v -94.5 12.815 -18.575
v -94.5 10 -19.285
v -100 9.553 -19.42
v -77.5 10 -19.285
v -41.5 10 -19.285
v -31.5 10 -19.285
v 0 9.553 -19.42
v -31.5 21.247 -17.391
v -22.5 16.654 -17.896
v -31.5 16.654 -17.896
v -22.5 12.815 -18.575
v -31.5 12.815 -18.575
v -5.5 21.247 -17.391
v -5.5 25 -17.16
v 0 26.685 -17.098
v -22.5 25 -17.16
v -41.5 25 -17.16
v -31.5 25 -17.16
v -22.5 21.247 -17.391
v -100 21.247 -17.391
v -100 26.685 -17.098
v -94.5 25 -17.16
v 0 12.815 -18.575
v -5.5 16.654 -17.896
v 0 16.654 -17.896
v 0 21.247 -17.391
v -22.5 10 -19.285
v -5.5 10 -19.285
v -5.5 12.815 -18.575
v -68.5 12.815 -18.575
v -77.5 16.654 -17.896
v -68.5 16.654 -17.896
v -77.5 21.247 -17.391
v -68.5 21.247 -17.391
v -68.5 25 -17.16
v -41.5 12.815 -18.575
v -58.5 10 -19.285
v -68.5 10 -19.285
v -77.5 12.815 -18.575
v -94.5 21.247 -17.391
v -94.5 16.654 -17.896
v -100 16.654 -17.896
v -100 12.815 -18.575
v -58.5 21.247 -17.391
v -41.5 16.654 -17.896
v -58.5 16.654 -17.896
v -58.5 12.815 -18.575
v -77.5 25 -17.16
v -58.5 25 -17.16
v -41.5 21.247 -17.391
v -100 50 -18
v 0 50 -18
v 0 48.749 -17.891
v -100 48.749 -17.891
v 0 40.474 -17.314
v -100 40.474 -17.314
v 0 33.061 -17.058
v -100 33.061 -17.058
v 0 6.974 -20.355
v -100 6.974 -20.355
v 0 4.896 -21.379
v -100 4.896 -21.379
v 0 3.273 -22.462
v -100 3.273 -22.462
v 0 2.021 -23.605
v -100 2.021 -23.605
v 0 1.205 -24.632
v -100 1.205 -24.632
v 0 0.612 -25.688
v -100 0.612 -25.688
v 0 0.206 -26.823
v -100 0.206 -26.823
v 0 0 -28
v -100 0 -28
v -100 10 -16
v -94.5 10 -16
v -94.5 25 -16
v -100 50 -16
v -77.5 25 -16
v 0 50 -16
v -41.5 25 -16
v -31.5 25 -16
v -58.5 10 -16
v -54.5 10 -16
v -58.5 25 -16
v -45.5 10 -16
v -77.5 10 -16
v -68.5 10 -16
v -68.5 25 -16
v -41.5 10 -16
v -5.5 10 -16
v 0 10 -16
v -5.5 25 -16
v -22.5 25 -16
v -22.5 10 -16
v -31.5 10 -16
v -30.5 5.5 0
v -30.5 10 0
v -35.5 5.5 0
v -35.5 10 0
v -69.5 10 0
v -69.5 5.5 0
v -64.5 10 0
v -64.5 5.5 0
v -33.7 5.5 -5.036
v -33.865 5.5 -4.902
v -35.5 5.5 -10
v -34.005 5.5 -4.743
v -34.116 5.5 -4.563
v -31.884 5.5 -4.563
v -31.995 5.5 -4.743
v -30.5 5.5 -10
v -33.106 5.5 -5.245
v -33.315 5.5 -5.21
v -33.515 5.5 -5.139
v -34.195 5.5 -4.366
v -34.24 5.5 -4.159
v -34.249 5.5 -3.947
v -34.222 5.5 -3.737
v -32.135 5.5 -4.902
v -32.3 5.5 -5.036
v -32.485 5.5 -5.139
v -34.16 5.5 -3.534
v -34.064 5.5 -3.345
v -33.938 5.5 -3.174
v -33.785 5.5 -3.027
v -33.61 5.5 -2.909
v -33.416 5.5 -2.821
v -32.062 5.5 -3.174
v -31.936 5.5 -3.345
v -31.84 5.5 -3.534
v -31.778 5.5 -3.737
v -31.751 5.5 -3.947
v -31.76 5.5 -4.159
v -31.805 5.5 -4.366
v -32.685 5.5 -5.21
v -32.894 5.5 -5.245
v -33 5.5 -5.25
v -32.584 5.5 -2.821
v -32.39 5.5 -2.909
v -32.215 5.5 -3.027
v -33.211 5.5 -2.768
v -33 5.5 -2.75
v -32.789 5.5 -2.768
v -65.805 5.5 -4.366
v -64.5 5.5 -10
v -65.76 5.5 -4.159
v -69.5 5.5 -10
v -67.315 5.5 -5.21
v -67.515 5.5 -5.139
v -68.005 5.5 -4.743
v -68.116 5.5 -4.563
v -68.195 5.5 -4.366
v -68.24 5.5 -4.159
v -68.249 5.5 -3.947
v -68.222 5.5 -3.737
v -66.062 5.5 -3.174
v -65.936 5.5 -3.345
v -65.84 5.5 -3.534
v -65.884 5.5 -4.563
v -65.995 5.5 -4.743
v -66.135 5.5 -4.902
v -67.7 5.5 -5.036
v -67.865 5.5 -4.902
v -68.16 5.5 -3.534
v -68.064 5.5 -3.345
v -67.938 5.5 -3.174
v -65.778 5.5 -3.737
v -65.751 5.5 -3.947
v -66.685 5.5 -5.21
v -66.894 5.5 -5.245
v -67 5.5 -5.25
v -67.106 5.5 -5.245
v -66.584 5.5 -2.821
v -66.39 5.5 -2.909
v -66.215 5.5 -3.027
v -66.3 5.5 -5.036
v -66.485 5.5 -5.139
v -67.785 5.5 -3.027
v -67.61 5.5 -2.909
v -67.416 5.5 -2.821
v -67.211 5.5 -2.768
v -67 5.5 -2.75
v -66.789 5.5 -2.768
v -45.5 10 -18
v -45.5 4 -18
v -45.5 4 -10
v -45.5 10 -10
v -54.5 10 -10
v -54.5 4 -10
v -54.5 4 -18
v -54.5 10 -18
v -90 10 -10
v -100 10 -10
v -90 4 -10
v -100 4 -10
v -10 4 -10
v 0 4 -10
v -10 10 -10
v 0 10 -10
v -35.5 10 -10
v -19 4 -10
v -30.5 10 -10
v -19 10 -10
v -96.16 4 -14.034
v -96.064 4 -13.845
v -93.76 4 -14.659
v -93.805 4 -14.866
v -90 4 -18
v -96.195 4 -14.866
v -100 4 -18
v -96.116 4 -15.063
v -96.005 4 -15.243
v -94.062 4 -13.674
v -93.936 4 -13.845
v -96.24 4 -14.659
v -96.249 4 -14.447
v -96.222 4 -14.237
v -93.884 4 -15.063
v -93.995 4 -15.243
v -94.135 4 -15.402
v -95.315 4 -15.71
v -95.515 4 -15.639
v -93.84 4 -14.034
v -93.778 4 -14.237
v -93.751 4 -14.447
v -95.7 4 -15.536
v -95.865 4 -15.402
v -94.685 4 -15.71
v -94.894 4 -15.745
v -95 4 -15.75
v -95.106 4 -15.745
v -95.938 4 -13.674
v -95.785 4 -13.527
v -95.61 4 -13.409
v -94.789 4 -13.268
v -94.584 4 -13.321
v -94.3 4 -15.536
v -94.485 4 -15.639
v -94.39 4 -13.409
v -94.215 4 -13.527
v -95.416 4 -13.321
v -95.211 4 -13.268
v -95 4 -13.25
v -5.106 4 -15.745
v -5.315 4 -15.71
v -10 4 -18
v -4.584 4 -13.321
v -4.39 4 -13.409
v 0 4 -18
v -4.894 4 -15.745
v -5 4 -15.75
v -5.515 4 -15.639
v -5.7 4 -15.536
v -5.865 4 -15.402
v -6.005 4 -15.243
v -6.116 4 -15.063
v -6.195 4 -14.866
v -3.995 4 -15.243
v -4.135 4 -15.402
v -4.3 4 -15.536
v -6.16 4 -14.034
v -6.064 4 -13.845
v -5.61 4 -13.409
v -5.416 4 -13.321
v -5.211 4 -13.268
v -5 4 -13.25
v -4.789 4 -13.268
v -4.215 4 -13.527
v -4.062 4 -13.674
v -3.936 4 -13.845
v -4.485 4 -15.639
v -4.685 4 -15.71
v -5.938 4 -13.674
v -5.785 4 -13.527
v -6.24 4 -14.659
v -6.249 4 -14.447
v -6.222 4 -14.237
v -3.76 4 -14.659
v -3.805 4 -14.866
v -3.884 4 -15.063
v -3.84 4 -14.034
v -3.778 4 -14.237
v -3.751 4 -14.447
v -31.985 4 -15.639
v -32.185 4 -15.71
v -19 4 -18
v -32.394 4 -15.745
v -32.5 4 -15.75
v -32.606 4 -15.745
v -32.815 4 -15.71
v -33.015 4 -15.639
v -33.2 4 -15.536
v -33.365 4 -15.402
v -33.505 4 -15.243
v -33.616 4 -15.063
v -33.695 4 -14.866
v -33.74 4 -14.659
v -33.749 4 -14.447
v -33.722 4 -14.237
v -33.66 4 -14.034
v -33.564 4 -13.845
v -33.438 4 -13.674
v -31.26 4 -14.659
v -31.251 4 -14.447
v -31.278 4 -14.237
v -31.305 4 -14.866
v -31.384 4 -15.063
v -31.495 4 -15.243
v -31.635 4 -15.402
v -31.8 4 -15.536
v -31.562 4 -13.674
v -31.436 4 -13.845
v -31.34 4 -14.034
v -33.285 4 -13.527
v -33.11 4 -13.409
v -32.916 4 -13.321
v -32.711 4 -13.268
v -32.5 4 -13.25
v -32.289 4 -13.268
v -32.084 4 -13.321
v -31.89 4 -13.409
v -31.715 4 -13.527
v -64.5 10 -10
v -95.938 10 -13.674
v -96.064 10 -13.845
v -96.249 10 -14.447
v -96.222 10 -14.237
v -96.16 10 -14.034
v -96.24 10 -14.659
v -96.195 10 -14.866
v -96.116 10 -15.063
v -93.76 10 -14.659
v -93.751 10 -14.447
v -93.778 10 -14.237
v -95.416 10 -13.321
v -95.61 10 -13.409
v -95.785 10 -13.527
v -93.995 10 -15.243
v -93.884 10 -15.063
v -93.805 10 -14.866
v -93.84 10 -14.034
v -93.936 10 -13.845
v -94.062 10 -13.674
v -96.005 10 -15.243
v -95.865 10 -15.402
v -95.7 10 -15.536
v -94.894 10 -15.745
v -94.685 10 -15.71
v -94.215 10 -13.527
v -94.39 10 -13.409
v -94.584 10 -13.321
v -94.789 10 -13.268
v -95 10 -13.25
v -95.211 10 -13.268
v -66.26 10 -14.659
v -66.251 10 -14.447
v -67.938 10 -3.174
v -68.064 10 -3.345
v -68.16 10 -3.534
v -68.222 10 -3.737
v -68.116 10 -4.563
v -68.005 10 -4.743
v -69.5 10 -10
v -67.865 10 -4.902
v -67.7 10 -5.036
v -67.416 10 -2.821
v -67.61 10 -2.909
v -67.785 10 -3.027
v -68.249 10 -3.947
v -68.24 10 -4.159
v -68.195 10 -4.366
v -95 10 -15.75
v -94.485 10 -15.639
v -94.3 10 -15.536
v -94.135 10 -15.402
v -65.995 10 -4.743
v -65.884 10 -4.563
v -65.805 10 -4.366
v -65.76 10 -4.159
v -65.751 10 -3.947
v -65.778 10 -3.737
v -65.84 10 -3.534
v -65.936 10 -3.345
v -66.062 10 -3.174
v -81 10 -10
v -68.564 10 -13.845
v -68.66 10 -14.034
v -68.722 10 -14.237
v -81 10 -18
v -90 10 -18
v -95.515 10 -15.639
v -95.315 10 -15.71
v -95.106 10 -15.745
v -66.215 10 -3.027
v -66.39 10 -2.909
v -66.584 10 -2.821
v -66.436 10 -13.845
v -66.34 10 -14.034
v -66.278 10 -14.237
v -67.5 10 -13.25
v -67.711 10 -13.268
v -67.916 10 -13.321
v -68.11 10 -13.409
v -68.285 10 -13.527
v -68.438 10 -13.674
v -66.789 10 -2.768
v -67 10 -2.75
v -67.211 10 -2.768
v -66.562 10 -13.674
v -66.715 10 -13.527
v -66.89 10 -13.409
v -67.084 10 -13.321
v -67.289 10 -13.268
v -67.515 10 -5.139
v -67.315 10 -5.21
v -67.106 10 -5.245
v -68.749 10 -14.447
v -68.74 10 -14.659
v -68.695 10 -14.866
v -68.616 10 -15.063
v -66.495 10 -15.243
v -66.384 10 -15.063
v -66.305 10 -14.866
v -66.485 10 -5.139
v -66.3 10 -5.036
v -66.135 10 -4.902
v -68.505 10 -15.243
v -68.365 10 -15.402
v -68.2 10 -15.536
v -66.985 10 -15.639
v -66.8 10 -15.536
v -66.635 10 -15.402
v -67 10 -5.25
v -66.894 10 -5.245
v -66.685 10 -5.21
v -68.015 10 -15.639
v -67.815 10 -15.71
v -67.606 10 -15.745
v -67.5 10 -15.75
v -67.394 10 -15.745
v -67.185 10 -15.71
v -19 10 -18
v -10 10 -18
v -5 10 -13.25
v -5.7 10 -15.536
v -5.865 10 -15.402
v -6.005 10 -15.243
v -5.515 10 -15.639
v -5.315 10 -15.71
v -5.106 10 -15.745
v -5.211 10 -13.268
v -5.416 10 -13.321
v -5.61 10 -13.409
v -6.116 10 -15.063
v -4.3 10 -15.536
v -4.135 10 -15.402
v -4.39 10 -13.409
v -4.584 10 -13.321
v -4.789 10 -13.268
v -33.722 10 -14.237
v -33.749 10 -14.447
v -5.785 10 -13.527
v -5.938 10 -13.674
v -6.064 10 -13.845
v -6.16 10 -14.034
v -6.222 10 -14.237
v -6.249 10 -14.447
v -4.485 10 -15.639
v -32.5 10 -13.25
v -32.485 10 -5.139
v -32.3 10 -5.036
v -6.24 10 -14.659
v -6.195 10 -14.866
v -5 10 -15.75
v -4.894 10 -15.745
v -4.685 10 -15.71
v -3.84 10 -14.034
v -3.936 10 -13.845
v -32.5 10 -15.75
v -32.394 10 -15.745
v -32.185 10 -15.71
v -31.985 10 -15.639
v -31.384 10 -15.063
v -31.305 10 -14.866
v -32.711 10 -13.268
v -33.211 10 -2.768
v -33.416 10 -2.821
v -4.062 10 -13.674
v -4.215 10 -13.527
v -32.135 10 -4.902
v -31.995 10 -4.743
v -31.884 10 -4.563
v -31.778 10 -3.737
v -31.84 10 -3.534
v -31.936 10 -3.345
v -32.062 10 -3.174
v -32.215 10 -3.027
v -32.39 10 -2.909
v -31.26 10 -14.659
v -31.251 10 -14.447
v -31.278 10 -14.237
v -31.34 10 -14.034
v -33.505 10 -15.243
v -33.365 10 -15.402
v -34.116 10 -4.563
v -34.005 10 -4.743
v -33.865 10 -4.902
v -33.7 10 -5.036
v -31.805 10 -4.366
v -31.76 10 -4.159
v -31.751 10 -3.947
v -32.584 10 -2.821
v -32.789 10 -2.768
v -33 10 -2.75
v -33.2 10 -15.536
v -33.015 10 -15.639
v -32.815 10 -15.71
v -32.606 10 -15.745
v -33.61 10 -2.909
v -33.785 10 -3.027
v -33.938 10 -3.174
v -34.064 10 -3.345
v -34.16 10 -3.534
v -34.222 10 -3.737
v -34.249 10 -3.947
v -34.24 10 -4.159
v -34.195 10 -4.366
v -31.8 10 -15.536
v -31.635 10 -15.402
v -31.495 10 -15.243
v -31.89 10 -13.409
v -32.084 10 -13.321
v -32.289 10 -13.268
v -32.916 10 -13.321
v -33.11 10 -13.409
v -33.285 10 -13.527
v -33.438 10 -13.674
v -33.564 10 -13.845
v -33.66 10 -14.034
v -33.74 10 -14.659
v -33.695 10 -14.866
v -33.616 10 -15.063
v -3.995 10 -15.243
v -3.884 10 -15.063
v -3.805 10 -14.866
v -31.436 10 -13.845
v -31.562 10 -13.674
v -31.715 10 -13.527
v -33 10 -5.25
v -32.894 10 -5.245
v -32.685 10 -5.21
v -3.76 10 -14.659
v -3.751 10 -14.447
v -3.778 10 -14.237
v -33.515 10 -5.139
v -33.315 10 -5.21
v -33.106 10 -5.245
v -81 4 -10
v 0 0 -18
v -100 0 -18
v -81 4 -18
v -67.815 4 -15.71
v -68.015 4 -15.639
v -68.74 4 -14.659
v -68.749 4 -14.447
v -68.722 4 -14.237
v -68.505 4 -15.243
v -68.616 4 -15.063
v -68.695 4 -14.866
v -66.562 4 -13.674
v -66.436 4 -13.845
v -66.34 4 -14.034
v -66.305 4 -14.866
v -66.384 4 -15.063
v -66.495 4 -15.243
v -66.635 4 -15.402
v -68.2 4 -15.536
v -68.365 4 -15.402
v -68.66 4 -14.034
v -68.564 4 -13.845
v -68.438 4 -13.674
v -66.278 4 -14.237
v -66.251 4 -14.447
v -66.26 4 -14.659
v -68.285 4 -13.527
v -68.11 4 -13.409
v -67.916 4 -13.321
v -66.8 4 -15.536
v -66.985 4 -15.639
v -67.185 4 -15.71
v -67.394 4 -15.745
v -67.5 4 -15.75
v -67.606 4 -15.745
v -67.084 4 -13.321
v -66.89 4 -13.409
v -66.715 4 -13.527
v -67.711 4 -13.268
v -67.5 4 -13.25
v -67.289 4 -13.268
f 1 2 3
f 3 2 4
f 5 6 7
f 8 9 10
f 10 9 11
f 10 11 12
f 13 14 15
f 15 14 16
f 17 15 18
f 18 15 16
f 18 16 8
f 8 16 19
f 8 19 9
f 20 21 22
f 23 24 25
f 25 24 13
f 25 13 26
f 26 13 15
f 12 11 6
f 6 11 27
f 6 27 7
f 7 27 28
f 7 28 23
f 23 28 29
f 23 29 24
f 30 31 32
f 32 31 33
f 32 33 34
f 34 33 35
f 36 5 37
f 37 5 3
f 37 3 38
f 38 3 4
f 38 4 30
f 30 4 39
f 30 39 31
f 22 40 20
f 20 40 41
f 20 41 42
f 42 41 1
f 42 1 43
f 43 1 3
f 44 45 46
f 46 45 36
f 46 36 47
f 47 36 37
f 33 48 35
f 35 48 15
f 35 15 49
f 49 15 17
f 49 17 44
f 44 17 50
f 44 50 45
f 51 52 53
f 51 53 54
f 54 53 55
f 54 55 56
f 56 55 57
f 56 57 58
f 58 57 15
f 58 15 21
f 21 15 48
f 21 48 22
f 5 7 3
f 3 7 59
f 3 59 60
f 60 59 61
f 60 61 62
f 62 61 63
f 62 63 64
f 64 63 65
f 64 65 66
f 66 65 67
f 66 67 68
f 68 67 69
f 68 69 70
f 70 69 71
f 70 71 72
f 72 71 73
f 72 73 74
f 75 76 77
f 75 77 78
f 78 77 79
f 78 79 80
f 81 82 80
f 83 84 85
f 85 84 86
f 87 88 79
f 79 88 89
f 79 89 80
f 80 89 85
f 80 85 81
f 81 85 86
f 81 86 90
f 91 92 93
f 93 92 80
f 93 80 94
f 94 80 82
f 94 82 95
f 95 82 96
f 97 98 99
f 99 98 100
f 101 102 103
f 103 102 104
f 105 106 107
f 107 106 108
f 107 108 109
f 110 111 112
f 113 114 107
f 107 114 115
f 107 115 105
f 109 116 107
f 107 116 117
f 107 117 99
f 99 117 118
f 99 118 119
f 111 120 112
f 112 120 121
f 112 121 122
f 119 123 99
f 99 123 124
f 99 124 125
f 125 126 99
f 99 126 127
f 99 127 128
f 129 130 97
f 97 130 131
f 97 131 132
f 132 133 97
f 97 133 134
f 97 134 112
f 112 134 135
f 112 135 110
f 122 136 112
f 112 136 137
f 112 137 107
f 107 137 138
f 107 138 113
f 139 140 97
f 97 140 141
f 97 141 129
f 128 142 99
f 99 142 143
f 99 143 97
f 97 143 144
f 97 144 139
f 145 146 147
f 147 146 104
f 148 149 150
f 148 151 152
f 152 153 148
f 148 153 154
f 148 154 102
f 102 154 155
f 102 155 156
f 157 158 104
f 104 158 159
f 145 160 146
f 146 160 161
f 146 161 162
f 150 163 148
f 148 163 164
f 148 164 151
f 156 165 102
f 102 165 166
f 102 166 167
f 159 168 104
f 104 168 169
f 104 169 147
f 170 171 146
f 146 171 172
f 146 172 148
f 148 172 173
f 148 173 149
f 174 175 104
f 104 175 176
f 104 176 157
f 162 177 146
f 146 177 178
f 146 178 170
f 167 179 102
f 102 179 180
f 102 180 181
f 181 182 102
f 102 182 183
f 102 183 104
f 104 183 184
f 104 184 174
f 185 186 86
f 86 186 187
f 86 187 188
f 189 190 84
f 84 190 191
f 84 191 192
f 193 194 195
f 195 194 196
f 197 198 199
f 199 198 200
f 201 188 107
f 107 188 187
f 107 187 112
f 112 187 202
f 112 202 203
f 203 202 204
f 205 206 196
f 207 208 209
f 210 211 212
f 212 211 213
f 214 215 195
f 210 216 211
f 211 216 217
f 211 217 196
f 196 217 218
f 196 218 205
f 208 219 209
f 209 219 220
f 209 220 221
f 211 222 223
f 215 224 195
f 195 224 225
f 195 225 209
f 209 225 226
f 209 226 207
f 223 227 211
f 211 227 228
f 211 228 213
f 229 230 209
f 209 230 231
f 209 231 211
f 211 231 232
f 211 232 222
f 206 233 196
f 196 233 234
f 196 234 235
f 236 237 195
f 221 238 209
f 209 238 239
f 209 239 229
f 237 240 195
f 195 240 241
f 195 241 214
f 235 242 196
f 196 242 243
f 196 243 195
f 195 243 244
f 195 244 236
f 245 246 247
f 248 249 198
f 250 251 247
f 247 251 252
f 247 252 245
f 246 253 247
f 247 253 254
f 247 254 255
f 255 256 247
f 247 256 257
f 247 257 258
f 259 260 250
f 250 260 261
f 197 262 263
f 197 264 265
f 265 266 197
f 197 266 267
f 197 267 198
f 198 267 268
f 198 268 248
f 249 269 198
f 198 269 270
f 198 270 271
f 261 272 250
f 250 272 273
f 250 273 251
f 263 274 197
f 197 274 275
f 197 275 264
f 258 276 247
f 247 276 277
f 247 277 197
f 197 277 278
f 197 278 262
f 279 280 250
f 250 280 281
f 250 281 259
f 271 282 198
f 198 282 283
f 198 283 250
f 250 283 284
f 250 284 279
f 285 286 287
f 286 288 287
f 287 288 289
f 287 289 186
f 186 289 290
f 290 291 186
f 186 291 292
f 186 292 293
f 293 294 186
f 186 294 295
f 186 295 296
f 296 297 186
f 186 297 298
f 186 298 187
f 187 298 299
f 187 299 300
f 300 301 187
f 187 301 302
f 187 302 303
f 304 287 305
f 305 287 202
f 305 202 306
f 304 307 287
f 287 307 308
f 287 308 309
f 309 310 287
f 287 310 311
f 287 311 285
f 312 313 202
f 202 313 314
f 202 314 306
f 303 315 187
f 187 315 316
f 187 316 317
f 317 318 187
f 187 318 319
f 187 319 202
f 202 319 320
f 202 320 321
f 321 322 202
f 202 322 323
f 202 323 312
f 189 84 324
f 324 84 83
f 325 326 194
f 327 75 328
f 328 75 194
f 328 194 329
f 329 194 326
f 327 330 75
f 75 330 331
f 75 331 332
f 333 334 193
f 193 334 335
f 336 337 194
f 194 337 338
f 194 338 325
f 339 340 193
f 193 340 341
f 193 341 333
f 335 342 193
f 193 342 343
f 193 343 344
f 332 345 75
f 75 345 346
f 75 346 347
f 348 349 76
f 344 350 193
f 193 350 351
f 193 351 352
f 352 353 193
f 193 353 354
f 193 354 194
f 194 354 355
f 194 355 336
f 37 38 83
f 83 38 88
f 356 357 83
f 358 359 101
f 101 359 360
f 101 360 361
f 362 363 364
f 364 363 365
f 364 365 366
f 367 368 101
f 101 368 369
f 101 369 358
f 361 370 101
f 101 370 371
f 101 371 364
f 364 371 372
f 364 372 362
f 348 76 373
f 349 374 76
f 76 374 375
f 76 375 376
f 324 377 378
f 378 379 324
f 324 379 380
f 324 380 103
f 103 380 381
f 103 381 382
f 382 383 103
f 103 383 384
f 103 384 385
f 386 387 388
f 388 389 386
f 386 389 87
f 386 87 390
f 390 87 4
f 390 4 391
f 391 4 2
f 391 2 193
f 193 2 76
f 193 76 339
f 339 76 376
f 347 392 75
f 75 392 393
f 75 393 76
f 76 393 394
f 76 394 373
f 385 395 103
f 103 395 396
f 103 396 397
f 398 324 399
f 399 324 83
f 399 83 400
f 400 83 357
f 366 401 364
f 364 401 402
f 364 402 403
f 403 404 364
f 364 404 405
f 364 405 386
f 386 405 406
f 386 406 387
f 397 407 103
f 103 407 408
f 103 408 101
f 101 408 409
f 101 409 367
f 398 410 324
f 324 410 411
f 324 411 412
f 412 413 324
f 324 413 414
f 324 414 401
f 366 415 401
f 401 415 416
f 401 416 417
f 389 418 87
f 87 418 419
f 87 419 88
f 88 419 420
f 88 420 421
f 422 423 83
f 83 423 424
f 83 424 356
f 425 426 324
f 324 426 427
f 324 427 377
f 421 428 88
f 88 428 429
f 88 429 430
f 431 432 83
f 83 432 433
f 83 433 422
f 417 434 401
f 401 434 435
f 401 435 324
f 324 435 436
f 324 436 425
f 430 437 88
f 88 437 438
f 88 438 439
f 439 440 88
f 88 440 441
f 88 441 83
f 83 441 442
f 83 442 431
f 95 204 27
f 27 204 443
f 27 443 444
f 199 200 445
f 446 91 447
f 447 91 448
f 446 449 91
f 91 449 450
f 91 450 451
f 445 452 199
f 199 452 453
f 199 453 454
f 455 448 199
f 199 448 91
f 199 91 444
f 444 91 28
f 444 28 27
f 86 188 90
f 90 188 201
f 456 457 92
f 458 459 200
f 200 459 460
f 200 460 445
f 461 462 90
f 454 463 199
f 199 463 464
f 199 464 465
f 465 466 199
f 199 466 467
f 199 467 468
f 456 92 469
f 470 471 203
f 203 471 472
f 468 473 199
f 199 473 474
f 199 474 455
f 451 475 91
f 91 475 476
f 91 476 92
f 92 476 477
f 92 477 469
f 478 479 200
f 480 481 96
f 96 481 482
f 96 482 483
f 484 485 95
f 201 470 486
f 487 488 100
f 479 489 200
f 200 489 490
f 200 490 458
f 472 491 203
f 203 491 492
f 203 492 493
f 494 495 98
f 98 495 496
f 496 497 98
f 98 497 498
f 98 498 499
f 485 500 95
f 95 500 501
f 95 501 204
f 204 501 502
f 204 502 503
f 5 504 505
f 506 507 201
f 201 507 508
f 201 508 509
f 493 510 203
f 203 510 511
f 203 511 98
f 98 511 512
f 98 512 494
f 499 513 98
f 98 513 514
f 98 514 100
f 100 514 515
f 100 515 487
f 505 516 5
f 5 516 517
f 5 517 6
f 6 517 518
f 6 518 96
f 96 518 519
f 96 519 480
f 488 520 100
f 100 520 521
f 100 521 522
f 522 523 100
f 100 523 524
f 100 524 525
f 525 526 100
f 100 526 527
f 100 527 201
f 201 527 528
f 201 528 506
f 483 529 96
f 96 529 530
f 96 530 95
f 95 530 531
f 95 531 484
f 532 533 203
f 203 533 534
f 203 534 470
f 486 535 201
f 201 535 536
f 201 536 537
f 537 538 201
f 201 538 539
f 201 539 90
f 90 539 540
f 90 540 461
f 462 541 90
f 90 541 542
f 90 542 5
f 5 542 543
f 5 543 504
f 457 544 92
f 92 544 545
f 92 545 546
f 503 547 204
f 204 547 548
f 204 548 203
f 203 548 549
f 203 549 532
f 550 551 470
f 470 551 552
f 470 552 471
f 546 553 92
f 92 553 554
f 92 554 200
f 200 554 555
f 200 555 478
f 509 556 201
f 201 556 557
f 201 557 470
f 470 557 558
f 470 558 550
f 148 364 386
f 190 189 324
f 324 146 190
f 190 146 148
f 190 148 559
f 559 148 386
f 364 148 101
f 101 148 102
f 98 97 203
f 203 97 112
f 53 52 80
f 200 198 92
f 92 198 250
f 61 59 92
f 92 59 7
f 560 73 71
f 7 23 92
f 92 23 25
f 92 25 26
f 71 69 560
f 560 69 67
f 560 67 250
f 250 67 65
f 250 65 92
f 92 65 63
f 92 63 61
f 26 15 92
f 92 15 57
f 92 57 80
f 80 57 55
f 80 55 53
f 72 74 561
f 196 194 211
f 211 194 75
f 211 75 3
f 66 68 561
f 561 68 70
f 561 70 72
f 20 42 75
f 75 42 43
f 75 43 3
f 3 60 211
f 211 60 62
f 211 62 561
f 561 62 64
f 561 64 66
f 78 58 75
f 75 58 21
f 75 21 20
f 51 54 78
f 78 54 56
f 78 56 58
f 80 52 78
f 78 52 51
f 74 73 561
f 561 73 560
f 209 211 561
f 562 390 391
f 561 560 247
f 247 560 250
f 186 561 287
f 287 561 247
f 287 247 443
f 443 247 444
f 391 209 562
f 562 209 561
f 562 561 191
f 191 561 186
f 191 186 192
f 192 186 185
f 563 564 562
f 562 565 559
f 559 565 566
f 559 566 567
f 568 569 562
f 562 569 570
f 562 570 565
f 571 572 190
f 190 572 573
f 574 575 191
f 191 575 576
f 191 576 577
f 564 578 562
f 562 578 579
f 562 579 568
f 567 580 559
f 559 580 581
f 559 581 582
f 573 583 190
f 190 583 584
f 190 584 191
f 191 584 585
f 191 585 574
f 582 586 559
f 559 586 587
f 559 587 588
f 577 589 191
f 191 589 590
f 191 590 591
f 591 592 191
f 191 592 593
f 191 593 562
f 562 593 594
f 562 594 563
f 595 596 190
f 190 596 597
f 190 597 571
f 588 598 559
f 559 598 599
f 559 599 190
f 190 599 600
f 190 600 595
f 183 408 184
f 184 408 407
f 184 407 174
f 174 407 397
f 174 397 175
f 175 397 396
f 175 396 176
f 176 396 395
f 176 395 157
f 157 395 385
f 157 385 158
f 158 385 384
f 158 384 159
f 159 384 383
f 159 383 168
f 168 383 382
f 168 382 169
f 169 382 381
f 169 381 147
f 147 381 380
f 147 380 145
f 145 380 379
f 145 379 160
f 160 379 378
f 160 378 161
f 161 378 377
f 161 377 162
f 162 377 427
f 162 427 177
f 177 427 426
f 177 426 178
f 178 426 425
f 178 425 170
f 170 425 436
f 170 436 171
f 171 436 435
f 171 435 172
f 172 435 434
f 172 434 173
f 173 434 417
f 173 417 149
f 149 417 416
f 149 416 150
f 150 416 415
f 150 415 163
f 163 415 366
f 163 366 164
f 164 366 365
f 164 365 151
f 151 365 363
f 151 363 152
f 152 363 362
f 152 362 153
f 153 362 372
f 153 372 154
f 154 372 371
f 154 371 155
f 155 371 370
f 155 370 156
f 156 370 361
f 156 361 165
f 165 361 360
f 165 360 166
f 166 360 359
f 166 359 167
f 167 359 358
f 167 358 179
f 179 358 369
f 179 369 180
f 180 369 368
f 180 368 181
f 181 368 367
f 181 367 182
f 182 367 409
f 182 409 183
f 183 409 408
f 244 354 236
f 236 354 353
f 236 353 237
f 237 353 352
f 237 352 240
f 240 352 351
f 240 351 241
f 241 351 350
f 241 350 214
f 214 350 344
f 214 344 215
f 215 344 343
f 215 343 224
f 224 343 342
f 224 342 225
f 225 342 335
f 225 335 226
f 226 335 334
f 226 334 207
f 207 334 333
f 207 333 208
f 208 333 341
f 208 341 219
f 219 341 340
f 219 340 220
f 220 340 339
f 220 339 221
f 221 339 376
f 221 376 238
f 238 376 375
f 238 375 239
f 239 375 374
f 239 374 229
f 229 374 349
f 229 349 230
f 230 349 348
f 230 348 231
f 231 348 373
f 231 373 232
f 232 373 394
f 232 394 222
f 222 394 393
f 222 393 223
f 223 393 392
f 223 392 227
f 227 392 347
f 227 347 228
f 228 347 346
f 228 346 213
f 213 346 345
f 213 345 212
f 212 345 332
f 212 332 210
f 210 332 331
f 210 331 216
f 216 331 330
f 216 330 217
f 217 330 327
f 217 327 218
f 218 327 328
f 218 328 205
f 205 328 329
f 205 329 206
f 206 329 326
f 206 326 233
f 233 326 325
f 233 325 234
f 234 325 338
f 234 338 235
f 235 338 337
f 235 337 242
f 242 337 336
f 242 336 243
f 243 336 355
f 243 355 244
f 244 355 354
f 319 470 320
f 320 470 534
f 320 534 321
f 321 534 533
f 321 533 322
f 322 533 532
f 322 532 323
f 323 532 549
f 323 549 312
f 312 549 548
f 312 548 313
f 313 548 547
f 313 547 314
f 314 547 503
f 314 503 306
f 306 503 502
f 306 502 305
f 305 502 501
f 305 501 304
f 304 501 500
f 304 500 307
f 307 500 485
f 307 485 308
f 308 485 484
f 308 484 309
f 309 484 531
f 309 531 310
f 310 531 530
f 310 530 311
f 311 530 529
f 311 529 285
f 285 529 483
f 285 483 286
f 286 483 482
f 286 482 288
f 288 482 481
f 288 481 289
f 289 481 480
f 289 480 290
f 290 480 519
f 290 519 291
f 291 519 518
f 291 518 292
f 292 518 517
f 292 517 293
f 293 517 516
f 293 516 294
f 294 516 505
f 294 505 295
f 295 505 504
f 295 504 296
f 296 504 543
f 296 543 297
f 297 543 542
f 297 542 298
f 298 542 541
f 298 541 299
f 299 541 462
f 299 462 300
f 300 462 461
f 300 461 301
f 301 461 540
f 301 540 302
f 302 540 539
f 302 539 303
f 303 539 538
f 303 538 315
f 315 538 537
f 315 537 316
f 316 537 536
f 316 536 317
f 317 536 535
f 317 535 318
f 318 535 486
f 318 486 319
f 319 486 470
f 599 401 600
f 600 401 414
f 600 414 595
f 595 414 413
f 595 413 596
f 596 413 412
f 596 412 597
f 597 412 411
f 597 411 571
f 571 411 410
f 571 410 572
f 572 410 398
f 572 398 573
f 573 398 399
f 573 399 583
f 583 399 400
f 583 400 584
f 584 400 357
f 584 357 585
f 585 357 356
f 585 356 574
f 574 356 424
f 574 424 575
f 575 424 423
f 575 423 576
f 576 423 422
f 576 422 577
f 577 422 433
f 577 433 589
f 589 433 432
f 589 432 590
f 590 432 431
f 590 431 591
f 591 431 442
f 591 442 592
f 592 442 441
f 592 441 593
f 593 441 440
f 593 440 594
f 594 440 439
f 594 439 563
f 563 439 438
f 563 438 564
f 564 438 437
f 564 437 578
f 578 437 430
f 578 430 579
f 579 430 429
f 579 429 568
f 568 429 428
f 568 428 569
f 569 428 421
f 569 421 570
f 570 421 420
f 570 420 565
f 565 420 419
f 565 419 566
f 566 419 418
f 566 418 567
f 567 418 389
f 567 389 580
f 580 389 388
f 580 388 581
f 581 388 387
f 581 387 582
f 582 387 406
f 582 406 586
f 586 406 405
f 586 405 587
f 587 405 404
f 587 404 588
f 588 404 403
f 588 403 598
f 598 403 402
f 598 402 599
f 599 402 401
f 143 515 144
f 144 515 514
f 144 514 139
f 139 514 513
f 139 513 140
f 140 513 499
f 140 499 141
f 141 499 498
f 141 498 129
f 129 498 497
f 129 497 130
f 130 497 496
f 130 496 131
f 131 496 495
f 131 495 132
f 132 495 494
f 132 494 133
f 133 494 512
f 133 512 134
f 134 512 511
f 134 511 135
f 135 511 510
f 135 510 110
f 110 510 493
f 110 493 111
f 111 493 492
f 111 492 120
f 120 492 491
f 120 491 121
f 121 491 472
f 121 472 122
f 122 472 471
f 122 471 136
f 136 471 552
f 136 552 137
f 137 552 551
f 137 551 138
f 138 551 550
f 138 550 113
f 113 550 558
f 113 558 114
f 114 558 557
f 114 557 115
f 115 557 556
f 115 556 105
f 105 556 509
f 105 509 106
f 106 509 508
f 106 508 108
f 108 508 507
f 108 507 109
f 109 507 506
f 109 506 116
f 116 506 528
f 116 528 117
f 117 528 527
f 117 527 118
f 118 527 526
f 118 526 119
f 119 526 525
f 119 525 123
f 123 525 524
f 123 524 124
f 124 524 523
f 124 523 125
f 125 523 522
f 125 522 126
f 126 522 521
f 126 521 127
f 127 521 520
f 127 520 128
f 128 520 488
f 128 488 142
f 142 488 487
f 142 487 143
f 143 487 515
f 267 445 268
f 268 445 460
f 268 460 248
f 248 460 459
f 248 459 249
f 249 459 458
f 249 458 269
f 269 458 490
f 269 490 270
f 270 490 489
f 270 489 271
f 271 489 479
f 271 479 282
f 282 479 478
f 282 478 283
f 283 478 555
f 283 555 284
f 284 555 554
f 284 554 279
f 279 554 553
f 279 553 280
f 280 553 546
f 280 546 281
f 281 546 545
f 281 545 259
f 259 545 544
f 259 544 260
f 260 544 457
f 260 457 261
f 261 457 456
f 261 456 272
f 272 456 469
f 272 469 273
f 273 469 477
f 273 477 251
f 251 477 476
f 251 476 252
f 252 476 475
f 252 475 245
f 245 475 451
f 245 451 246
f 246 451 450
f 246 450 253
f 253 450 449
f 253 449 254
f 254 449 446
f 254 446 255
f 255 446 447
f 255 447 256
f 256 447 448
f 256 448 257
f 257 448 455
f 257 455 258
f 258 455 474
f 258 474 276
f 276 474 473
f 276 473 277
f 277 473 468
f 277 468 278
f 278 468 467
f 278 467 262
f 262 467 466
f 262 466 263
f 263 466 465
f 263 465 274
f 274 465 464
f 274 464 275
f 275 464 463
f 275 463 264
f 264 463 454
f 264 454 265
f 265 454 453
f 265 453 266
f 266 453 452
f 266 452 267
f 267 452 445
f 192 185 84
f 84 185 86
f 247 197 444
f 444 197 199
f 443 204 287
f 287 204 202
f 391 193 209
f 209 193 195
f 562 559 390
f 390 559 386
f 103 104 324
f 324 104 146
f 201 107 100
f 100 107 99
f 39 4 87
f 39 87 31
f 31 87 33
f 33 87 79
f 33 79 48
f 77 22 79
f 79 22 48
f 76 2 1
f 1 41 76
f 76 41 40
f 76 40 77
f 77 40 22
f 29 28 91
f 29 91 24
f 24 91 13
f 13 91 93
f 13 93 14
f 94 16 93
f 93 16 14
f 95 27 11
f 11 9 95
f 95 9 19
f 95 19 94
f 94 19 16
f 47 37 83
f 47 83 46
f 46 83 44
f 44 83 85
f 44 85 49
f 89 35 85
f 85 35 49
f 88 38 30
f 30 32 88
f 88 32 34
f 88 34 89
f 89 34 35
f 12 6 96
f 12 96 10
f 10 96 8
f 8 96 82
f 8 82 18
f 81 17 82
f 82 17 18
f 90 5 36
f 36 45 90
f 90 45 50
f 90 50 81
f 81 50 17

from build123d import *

# Parameters (mm, degrees)
SZKIC1_W                         = 100
SZKIC1_H                         = 28
OGOLNY_KSZTALT_DEPTH             = 50
ZAKRZYWUIENIE_OUTSIDE_W          = 53.052
ZAKRZYWUIENIE_OUTSIDE_H          = 75.052
WYCIECIE_KSZTAL_PRZOD_DEPTH      = 105
WYCIECIE_KSZTALTU_TYL_DEPTH      = 23
WYCIECIE_KSZTALTU_TYL_DEPTH_BACK = 99.5
SZKIC4_W                         = 30.5
SZKIC4_H                         = 10
SZKIC5_W                         = 39
SZKIC5_H                         = 10
PODBICIE_TYL_SPOD_DEPTH          = 5.5
SZKIC6_W                         = 100
SZKIC6_H                         = 8
PODBICIE_SRODEK_SPOD_DEPTH       = 4
PRZYCIECIE_OD_GORY_DEPTH         = 40
OTWORY_NA_SRUBY_DEPTH            = 90
OTWORY_NA_SRUBY_DEPTH_BACK       = 71
SZKIC8_R                         = 1.25
SZKIC9_W                         = 9
SZKIC9_H                         = 10
KTIR_KABLE_DEPTH                 = 10
WYTNIJ_WYCI_GNI_CIE3_DEPTH       = 84
WYTNIJ_WYCI_GNI_CIE3_DEPTH_BACK  = 81
SZKIC10_W                        = 29
SZKIC10_H                        = 10
WYTNIJ_WYCI_GNI_CIE4_DEPTH       = 59
WYTNIJ_WYCI_GNI_CIE4_DEPTH_BACK  = 55
SZKIC11_W                        = 10
SZKIC11_H                        = 15
SZKIC11_W_2                      = 17


with BuildPart() as part:
    # Szkic1 → ogolny ksztalt (new body)
    with BuildSketch(Plane(origin=(0, 0, 0), x_dir=(1, 0, 0), z_dir=(0, 1, 0))):
        with Locations((-50, 14)):
            Rectangle(SZKIC1_W, SZKIC1_H)
    extrude(amount=OGOLNY_KSZTALT_DEPTH)

    # zakrzywuienie outside → wyciecie ksztal przod (cut)
    with BuildSketch(Plane(origin=(0, 0, 0), x_dir=(0, 0, -1), z_dir=(1, 0, 0))):
        with Locations((14, 25)):
            Rectangle(ZAKRZYWUIENIE_OUTSIDE_W, ZAKRZYWUIENIE_OUTSIDE_H)
        with BuildLine():
            Line((28, 0), (18, 0))
            Line((18, 0), (0, 0))
            Line((0, 0), (0, 50))
            Line((0, 50), (18, 50))
            add(Edge.make_bspline(
                [(18, 50), (14.693585387, 12.992576306), (20.397077092, 0.692779903), (28, 0)],
                knots=[0, 0, 0, 0, 1, 1, 1, 1], degree=3))
        make_face(mode=Mode.SUBTRACT)
    extrude(amount=-WYCIECIE_KSZTAL_PRZOD_DEPTH, mode=Mode.SUBTRACT)

    # Szkic4 → wyciecie ksztaltu tyl (cut, two sides: drawn at the far end of the back side and taken through both)
    with BuildSketch(Plane(origin=(0, 0, 0), x_dir=(-1, 0, 0), z_dir=(0, -1, 0)).offset(-WYCIECIE_KSZTALTU_TYL_DEPTH_BACK)):
        with Locations((84.75, 5)):
            Rectangle(SZKIC4_W, SZKIC4_H)
        with Locations((15.25, 5)):
            Rectangle(SZKIC4_W, SZKIC4_H)
    extrude(amount=WYCIECIE_KSZTALTU_TYL_DEPTH + WYCIECIE_KSZTALTU_TYL_DEPTH_BACK, mode=Mode.SUBTRACT)

    # Szkic5 → podbicie tyl(spod) (cut)
    with BuildSketch(Plane(origin=(0, 0, 0), x_dir=(-1, 0, 0), z_dir=(0, -1, 0))):
        with Locations((50, 5)):
            Rectangle(SZKIC5_W, SZKIC5_H)
    extrude(amount=-PODBICIE_TYL_SPOD_DEPTH, mode=Mode.SUBTRACT)

    # Szkic6 → podbicie srodek(spod) (cut)
    with BuildSketch(Plane(origin=(0, 0, 0), x_dir=(-1, 0, 0), z_dir=(0, -1, 0))):
        with Locations((50, 14)):
            Rectangle(SZKIC6_W, SZKIC6_H)
    extrude(amount=-PODBICIE_SRODEK_SPOD_DEPTH, mode=Mode.SUBTRACT)

    # Szkic7 → przyciecie od gory (cut)
    with BuildSketch(Plane(origin=(0, 50, 0), x_dir=(1, 0, 0), z_dir=(0, 1, 0))):
        Polygon((0, 10), (-30.5, 10), (-30.5, 0), (-69.5, 0), (-69.5, 10), (-100, 10), (-100, 16), (0, 16), align=None)
    extrude(amount=-PRZYCIECIE_OD_GORY_DEPTH, mode=Mode.SUBTRACT)

    # Szkic8 → otwory na sruby (cut, two sides: drawn at the far end of the back side and taken through both)
    with BuildSketch(Plane(origin=(0, 5.5, 0), x_dir=(-1, 0, 0), z_dir=(0, -1, 0)).offset(-OTWORY_NA_SRUBY_DEPTH_BACK)):
        with Locations(Location((67, 4, 0), (0, 0, 270))):
            Circle(SZKIC8_R)
        with Locations(Location((33, 4, 0), (0, 0, 270))):
            Circle(SZKIC8_R)
        with Locations(Location((67.5, 14.5, 0), (0, 0, 270))):
            Circle(SZKIC8_R)
        with Locations(Location((32.5, 14.5, 0), (0, 0, 270))):
            Circle(SZKIC8_R)
        with Locations(Location((95, 14.5, 0), (0, 0, 270))):
            Circle(SZKIC8_R)
        with Locations(Location((5, 14.5, 0), (0, 0, 270))):
            Circle(SZKIC8_R)
    extrude(amount=OTWORY_NA_SRUBY_DEPTH + OTWORY_NA_SRUBY_DEPTH_BACK, mode=Mode.SUBTRACT)

    # Szkic9 → ktir kable (cut)
    with BuildSketch(Plane(origin=(0, 0, 0), x_dir=(-1, 0, 0), z_dir=(0, -1, 0))):
        with Locations((50, 13)):
            Rectangle(SZKIC9_W, SZKIC9_H)
        with Locations((14.5, 13)):
            Rectangle(SZKIC9_W, SZKIC9_H)
        with Locations((85.5, 13)):
            Rectangle(SZKIC9_W, SZKIC9_H)
    extrude(amount=-KTIR_KABLE_DEPTH, mode=Mode.SUBTRACT)

    # Szkic10 → Wytnij-wyciągnięcie3 (cut, two sides: drawn at the far end of the back side and taken through both)
    with BuildSketch(Plane.XZ.offset(-5.5).offset(-WYTNIJ_WYCI_GNI_CIE3_DEPTH_BACK)):
        with Locations((-50, -5)):
            Rectangle(SZKIC10_W, SZKIC10_H)
    extrude(amount=WYTNIJ_WYCI_GNI_CIE3_DEPTH + WYTNIJ_WYCI_GNI_CIE3_DEPTH_BACK, mode=Mode.SUBTRACT)

    # Szkic11 → Wytnij-wyciągnięcie4 (cut, two sides: drawn at the far end of the back side and taken through both)
    with BuildSketch(Plane.XY.offset(-16).offset(-WYTNIJ_WYCI_GNI_CIE4_DEPTH_BACK)):
        with Locations((-63.5, 17.5)):
            Rectangle(SZKIC11_W, SZKIC11_H)
        with Locations((-36.5, 17.5)):
            Rectangle(SZKIC11_W, SZKIC11_H)
        with Locations((-86, 17.5)):
            Rectangle(SZKIC11_W_2, SZKIC11_H)
        with Locations((-14, 17.5)):
            Rectangle(SZKIC11_W_2, SZKIC11_H)
    extrude(amount=WYTNIJ_WYCI_GNI_CIE4_DEPTH + WYTNIJ_WYCI_GNI_CIE4_DEPTH_BACK, mode=Mode.SUBTRACT)


solid = part.part
